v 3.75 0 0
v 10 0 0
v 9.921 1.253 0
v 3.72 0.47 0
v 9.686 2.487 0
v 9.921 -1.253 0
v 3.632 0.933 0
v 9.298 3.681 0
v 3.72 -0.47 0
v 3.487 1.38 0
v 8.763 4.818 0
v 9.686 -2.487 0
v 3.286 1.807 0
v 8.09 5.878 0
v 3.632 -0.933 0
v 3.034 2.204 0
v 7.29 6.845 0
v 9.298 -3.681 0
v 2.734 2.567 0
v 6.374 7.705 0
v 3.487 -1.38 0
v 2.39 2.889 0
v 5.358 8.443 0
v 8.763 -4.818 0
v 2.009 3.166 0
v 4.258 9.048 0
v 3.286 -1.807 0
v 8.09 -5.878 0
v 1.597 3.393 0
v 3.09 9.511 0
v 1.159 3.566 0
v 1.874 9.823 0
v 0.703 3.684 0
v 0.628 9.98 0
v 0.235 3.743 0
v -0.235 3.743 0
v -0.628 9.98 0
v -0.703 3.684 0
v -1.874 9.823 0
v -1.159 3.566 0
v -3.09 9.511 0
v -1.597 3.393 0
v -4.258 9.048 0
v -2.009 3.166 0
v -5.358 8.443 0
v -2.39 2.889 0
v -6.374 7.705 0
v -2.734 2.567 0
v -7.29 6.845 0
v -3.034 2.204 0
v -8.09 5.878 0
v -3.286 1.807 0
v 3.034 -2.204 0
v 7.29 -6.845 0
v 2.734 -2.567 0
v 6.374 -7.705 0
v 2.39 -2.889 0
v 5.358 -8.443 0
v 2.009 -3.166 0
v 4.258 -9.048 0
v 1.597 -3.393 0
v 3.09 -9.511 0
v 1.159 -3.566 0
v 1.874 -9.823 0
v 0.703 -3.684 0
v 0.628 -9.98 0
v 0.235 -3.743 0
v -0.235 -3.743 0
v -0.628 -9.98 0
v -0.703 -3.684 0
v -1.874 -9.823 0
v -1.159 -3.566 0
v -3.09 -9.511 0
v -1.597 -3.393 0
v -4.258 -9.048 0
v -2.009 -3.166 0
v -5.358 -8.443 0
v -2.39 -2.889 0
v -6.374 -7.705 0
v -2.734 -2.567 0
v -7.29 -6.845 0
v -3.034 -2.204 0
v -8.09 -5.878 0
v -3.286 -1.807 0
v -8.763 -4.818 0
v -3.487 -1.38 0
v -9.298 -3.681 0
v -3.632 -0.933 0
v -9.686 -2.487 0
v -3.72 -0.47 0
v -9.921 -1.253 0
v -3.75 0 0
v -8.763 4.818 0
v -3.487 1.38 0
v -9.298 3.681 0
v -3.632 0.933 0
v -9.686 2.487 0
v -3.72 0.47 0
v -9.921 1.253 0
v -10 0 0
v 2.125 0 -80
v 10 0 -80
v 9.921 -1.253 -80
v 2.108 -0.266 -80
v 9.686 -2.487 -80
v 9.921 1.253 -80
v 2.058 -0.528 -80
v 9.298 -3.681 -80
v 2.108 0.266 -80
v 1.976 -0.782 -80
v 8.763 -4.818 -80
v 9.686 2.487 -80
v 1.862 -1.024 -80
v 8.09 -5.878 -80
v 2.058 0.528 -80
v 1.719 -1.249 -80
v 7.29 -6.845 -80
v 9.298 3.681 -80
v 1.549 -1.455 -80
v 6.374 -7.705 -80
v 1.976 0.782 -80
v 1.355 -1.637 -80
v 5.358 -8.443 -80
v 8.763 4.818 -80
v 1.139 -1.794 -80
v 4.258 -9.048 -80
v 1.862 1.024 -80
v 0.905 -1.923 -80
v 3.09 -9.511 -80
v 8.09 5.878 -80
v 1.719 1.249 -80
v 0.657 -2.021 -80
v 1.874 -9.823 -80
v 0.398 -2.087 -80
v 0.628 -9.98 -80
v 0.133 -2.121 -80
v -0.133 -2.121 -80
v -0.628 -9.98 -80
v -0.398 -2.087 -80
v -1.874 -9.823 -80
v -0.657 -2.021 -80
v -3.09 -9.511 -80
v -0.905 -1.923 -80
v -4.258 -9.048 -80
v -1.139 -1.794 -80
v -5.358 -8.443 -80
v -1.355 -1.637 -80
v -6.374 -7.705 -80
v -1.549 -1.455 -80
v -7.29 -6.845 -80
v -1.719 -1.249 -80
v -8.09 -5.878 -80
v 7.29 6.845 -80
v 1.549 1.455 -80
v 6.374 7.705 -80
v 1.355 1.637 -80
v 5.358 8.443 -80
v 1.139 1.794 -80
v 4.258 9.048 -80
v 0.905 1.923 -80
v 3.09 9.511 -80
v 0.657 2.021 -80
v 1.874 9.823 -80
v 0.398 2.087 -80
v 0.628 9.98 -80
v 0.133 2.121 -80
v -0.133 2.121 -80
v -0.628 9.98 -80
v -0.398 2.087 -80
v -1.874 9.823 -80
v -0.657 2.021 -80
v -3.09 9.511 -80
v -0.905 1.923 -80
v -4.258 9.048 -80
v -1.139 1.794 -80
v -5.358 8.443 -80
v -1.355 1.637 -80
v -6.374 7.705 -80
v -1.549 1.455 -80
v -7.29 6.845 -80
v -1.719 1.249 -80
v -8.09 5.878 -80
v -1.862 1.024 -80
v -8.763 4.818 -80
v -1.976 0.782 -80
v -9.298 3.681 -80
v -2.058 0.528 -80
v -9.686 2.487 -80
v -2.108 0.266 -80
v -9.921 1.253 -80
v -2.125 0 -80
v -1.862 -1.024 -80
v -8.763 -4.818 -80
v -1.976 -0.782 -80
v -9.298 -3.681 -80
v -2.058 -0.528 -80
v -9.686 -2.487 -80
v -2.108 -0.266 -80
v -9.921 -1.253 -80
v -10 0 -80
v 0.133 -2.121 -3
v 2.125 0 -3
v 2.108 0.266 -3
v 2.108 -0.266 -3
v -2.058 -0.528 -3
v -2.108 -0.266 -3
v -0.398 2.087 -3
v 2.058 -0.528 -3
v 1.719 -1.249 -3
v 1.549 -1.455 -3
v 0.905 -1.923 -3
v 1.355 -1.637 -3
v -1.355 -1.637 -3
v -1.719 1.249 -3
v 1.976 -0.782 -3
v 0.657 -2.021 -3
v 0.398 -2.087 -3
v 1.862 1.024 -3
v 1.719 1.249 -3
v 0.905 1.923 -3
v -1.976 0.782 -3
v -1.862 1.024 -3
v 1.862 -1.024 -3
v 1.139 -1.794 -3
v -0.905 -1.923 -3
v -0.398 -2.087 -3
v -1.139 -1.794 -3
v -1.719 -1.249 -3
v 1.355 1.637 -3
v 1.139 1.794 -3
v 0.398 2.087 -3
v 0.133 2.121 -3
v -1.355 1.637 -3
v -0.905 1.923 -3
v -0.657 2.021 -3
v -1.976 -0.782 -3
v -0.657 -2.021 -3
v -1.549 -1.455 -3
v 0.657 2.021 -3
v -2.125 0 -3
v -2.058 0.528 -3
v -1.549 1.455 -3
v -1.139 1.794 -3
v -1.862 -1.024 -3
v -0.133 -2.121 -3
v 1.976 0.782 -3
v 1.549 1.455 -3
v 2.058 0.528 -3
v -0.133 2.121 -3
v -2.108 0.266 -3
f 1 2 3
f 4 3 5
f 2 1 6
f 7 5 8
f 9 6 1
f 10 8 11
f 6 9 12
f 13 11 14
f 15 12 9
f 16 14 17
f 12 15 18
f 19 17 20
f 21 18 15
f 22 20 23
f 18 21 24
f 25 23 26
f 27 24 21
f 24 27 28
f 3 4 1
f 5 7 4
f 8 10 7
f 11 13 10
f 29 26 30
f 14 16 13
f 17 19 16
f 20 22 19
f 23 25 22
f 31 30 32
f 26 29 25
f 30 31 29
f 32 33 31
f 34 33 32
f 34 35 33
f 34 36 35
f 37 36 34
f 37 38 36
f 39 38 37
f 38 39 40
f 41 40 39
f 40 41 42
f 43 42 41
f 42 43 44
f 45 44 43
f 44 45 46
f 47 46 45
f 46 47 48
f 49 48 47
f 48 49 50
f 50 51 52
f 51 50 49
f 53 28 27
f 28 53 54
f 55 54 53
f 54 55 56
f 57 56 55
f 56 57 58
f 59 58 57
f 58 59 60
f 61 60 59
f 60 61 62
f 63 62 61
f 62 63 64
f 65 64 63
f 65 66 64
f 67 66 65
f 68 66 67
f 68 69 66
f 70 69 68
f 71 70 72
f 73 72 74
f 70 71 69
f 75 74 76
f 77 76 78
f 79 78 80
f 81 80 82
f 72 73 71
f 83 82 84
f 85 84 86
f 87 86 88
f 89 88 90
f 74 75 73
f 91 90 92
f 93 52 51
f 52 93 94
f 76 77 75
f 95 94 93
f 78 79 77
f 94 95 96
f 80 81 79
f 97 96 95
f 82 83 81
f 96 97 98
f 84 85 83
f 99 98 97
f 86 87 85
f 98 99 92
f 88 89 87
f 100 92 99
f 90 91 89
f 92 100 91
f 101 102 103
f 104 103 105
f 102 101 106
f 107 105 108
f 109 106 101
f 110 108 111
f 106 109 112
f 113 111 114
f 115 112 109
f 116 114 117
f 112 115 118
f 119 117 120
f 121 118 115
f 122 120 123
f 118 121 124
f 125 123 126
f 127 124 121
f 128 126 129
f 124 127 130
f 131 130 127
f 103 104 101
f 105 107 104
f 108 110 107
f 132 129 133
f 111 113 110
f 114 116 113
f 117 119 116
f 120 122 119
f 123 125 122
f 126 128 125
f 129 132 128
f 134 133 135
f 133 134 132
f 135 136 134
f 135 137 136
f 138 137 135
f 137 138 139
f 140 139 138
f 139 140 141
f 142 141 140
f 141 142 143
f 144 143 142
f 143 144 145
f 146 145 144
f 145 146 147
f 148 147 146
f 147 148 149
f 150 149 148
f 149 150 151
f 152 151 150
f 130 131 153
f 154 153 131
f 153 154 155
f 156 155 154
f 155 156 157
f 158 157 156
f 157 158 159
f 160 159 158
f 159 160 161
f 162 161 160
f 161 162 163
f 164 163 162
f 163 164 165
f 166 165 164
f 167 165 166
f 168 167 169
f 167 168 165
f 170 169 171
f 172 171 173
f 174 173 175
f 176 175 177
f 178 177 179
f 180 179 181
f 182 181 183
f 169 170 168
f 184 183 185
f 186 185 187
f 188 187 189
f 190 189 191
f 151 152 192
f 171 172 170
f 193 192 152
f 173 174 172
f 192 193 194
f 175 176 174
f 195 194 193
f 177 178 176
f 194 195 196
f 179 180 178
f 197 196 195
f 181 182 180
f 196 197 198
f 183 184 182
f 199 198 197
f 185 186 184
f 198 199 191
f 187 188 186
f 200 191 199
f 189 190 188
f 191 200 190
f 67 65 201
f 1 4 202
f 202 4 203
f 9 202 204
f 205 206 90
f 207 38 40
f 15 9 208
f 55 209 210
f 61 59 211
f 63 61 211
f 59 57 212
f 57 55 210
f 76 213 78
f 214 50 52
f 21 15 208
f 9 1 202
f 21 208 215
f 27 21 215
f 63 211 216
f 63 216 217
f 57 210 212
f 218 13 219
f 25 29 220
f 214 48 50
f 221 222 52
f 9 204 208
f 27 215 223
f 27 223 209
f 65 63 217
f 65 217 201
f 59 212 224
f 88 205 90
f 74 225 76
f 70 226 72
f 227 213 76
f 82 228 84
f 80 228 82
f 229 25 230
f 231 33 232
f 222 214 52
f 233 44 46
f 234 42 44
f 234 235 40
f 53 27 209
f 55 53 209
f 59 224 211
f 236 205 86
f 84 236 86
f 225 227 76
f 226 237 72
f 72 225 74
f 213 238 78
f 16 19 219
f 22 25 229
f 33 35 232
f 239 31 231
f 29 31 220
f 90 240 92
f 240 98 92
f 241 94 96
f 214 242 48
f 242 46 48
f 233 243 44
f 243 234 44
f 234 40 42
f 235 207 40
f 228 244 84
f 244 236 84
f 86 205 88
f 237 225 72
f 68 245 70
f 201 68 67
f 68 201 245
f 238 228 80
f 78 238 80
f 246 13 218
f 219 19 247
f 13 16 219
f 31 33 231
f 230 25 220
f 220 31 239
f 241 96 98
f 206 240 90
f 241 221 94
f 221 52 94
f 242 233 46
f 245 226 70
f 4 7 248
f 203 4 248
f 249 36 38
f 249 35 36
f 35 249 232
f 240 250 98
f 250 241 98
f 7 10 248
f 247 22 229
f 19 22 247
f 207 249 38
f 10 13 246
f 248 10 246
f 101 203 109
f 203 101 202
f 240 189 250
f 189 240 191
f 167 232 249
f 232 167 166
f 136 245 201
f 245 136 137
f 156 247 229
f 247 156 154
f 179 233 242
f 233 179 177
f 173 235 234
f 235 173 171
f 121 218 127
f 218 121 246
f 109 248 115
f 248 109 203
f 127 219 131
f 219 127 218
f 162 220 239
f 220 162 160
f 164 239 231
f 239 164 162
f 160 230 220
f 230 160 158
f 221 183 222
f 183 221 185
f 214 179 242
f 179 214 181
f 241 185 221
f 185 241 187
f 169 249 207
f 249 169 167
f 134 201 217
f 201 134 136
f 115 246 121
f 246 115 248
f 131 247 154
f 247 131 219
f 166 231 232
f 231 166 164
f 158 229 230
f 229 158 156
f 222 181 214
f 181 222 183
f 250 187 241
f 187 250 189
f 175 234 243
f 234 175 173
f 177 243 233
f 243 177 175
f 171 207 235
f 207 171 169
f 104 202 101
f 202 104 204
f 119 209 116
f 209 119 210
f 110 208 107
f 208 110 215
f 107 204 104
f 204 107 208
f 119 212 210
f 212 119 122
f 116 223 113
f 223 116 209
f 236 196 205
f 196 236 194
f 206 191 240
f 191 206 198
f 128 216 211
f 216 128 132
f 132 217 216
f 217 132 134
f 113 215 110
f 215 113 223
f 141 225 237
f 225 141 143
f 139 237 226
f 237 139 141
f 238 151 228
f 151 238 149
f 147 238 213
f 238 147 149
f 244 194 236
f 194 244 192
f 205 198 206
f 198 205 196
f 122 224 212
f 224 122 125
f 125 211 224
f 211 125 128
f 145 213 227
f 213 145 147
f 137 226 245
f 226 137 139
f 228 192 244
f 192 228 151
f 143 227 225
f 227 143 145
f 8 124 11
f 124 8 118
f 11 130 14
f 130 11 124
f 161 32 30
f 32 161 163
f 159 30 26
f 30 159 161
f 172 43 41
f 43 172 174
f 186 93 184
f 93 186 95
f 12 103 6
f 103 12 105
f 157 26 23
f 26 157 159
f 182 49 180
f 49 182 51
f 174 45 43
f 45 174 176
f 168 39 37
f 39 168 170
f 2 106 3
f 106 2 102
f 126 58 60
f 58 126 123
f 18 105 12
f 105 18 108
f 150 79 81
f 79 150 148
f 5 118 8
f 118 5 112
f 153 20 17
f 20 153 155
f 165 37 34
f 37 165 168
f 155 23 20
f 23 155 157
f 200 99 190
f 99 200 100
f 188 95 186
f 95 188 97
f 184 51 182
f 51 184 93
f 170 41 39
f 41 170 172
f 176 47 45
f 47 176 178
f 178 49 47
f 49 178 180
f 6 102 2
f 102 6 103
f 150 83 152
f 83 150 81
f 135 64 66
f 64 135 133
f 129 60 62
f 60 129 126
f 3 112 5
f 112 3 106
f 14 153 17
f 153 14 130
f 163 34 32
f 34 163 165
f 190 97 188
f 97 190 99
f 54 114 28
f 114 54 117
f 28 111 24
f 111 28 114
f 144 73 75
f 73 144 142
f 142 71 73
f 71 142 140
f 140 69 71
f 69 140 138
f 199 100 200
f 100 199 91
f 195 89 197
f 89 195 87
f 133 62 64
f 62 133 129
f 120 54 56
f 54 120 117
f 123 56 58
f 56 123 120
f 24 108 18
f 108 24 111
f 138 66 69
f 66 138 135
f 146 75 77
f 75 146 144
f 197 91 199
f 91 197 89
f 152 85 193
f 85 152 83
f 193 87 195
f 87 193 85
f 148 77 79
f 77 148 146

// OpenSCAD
$fn = 50;


difference() {
	union() {
		translate(v = [0, 0, -80.0000000000]) {
			cylinder(h = 80, r = 10.0000000000);
		}
	}
	union() {
		translate(v = [0, 0, 0]) {
			rotate(a = [0, 0, 0]) {
				difference() {
					union() {
						#translate(v = [0, 0, -80.0000000000]) {
							cylinder(h = 80, r = 2.0000000000);
						}
						#translate(v = [0, 0, -3]) {
							cylinder(h = 3, r = 10.0000000000, r1 = 2.1250000000, r2 = 3.7500000000);
						}
						#translate(v = [0, 0, -80.0000000000]) {
							cylinder(h = 80, r = 2.1250000000);
						}
						#translate(v = [0, 0, -80.0000000000]) {
							cylinder(h = 80, r = 2.0000000000);
						}
					}
					union();
				}
			}
		}
	}
}
